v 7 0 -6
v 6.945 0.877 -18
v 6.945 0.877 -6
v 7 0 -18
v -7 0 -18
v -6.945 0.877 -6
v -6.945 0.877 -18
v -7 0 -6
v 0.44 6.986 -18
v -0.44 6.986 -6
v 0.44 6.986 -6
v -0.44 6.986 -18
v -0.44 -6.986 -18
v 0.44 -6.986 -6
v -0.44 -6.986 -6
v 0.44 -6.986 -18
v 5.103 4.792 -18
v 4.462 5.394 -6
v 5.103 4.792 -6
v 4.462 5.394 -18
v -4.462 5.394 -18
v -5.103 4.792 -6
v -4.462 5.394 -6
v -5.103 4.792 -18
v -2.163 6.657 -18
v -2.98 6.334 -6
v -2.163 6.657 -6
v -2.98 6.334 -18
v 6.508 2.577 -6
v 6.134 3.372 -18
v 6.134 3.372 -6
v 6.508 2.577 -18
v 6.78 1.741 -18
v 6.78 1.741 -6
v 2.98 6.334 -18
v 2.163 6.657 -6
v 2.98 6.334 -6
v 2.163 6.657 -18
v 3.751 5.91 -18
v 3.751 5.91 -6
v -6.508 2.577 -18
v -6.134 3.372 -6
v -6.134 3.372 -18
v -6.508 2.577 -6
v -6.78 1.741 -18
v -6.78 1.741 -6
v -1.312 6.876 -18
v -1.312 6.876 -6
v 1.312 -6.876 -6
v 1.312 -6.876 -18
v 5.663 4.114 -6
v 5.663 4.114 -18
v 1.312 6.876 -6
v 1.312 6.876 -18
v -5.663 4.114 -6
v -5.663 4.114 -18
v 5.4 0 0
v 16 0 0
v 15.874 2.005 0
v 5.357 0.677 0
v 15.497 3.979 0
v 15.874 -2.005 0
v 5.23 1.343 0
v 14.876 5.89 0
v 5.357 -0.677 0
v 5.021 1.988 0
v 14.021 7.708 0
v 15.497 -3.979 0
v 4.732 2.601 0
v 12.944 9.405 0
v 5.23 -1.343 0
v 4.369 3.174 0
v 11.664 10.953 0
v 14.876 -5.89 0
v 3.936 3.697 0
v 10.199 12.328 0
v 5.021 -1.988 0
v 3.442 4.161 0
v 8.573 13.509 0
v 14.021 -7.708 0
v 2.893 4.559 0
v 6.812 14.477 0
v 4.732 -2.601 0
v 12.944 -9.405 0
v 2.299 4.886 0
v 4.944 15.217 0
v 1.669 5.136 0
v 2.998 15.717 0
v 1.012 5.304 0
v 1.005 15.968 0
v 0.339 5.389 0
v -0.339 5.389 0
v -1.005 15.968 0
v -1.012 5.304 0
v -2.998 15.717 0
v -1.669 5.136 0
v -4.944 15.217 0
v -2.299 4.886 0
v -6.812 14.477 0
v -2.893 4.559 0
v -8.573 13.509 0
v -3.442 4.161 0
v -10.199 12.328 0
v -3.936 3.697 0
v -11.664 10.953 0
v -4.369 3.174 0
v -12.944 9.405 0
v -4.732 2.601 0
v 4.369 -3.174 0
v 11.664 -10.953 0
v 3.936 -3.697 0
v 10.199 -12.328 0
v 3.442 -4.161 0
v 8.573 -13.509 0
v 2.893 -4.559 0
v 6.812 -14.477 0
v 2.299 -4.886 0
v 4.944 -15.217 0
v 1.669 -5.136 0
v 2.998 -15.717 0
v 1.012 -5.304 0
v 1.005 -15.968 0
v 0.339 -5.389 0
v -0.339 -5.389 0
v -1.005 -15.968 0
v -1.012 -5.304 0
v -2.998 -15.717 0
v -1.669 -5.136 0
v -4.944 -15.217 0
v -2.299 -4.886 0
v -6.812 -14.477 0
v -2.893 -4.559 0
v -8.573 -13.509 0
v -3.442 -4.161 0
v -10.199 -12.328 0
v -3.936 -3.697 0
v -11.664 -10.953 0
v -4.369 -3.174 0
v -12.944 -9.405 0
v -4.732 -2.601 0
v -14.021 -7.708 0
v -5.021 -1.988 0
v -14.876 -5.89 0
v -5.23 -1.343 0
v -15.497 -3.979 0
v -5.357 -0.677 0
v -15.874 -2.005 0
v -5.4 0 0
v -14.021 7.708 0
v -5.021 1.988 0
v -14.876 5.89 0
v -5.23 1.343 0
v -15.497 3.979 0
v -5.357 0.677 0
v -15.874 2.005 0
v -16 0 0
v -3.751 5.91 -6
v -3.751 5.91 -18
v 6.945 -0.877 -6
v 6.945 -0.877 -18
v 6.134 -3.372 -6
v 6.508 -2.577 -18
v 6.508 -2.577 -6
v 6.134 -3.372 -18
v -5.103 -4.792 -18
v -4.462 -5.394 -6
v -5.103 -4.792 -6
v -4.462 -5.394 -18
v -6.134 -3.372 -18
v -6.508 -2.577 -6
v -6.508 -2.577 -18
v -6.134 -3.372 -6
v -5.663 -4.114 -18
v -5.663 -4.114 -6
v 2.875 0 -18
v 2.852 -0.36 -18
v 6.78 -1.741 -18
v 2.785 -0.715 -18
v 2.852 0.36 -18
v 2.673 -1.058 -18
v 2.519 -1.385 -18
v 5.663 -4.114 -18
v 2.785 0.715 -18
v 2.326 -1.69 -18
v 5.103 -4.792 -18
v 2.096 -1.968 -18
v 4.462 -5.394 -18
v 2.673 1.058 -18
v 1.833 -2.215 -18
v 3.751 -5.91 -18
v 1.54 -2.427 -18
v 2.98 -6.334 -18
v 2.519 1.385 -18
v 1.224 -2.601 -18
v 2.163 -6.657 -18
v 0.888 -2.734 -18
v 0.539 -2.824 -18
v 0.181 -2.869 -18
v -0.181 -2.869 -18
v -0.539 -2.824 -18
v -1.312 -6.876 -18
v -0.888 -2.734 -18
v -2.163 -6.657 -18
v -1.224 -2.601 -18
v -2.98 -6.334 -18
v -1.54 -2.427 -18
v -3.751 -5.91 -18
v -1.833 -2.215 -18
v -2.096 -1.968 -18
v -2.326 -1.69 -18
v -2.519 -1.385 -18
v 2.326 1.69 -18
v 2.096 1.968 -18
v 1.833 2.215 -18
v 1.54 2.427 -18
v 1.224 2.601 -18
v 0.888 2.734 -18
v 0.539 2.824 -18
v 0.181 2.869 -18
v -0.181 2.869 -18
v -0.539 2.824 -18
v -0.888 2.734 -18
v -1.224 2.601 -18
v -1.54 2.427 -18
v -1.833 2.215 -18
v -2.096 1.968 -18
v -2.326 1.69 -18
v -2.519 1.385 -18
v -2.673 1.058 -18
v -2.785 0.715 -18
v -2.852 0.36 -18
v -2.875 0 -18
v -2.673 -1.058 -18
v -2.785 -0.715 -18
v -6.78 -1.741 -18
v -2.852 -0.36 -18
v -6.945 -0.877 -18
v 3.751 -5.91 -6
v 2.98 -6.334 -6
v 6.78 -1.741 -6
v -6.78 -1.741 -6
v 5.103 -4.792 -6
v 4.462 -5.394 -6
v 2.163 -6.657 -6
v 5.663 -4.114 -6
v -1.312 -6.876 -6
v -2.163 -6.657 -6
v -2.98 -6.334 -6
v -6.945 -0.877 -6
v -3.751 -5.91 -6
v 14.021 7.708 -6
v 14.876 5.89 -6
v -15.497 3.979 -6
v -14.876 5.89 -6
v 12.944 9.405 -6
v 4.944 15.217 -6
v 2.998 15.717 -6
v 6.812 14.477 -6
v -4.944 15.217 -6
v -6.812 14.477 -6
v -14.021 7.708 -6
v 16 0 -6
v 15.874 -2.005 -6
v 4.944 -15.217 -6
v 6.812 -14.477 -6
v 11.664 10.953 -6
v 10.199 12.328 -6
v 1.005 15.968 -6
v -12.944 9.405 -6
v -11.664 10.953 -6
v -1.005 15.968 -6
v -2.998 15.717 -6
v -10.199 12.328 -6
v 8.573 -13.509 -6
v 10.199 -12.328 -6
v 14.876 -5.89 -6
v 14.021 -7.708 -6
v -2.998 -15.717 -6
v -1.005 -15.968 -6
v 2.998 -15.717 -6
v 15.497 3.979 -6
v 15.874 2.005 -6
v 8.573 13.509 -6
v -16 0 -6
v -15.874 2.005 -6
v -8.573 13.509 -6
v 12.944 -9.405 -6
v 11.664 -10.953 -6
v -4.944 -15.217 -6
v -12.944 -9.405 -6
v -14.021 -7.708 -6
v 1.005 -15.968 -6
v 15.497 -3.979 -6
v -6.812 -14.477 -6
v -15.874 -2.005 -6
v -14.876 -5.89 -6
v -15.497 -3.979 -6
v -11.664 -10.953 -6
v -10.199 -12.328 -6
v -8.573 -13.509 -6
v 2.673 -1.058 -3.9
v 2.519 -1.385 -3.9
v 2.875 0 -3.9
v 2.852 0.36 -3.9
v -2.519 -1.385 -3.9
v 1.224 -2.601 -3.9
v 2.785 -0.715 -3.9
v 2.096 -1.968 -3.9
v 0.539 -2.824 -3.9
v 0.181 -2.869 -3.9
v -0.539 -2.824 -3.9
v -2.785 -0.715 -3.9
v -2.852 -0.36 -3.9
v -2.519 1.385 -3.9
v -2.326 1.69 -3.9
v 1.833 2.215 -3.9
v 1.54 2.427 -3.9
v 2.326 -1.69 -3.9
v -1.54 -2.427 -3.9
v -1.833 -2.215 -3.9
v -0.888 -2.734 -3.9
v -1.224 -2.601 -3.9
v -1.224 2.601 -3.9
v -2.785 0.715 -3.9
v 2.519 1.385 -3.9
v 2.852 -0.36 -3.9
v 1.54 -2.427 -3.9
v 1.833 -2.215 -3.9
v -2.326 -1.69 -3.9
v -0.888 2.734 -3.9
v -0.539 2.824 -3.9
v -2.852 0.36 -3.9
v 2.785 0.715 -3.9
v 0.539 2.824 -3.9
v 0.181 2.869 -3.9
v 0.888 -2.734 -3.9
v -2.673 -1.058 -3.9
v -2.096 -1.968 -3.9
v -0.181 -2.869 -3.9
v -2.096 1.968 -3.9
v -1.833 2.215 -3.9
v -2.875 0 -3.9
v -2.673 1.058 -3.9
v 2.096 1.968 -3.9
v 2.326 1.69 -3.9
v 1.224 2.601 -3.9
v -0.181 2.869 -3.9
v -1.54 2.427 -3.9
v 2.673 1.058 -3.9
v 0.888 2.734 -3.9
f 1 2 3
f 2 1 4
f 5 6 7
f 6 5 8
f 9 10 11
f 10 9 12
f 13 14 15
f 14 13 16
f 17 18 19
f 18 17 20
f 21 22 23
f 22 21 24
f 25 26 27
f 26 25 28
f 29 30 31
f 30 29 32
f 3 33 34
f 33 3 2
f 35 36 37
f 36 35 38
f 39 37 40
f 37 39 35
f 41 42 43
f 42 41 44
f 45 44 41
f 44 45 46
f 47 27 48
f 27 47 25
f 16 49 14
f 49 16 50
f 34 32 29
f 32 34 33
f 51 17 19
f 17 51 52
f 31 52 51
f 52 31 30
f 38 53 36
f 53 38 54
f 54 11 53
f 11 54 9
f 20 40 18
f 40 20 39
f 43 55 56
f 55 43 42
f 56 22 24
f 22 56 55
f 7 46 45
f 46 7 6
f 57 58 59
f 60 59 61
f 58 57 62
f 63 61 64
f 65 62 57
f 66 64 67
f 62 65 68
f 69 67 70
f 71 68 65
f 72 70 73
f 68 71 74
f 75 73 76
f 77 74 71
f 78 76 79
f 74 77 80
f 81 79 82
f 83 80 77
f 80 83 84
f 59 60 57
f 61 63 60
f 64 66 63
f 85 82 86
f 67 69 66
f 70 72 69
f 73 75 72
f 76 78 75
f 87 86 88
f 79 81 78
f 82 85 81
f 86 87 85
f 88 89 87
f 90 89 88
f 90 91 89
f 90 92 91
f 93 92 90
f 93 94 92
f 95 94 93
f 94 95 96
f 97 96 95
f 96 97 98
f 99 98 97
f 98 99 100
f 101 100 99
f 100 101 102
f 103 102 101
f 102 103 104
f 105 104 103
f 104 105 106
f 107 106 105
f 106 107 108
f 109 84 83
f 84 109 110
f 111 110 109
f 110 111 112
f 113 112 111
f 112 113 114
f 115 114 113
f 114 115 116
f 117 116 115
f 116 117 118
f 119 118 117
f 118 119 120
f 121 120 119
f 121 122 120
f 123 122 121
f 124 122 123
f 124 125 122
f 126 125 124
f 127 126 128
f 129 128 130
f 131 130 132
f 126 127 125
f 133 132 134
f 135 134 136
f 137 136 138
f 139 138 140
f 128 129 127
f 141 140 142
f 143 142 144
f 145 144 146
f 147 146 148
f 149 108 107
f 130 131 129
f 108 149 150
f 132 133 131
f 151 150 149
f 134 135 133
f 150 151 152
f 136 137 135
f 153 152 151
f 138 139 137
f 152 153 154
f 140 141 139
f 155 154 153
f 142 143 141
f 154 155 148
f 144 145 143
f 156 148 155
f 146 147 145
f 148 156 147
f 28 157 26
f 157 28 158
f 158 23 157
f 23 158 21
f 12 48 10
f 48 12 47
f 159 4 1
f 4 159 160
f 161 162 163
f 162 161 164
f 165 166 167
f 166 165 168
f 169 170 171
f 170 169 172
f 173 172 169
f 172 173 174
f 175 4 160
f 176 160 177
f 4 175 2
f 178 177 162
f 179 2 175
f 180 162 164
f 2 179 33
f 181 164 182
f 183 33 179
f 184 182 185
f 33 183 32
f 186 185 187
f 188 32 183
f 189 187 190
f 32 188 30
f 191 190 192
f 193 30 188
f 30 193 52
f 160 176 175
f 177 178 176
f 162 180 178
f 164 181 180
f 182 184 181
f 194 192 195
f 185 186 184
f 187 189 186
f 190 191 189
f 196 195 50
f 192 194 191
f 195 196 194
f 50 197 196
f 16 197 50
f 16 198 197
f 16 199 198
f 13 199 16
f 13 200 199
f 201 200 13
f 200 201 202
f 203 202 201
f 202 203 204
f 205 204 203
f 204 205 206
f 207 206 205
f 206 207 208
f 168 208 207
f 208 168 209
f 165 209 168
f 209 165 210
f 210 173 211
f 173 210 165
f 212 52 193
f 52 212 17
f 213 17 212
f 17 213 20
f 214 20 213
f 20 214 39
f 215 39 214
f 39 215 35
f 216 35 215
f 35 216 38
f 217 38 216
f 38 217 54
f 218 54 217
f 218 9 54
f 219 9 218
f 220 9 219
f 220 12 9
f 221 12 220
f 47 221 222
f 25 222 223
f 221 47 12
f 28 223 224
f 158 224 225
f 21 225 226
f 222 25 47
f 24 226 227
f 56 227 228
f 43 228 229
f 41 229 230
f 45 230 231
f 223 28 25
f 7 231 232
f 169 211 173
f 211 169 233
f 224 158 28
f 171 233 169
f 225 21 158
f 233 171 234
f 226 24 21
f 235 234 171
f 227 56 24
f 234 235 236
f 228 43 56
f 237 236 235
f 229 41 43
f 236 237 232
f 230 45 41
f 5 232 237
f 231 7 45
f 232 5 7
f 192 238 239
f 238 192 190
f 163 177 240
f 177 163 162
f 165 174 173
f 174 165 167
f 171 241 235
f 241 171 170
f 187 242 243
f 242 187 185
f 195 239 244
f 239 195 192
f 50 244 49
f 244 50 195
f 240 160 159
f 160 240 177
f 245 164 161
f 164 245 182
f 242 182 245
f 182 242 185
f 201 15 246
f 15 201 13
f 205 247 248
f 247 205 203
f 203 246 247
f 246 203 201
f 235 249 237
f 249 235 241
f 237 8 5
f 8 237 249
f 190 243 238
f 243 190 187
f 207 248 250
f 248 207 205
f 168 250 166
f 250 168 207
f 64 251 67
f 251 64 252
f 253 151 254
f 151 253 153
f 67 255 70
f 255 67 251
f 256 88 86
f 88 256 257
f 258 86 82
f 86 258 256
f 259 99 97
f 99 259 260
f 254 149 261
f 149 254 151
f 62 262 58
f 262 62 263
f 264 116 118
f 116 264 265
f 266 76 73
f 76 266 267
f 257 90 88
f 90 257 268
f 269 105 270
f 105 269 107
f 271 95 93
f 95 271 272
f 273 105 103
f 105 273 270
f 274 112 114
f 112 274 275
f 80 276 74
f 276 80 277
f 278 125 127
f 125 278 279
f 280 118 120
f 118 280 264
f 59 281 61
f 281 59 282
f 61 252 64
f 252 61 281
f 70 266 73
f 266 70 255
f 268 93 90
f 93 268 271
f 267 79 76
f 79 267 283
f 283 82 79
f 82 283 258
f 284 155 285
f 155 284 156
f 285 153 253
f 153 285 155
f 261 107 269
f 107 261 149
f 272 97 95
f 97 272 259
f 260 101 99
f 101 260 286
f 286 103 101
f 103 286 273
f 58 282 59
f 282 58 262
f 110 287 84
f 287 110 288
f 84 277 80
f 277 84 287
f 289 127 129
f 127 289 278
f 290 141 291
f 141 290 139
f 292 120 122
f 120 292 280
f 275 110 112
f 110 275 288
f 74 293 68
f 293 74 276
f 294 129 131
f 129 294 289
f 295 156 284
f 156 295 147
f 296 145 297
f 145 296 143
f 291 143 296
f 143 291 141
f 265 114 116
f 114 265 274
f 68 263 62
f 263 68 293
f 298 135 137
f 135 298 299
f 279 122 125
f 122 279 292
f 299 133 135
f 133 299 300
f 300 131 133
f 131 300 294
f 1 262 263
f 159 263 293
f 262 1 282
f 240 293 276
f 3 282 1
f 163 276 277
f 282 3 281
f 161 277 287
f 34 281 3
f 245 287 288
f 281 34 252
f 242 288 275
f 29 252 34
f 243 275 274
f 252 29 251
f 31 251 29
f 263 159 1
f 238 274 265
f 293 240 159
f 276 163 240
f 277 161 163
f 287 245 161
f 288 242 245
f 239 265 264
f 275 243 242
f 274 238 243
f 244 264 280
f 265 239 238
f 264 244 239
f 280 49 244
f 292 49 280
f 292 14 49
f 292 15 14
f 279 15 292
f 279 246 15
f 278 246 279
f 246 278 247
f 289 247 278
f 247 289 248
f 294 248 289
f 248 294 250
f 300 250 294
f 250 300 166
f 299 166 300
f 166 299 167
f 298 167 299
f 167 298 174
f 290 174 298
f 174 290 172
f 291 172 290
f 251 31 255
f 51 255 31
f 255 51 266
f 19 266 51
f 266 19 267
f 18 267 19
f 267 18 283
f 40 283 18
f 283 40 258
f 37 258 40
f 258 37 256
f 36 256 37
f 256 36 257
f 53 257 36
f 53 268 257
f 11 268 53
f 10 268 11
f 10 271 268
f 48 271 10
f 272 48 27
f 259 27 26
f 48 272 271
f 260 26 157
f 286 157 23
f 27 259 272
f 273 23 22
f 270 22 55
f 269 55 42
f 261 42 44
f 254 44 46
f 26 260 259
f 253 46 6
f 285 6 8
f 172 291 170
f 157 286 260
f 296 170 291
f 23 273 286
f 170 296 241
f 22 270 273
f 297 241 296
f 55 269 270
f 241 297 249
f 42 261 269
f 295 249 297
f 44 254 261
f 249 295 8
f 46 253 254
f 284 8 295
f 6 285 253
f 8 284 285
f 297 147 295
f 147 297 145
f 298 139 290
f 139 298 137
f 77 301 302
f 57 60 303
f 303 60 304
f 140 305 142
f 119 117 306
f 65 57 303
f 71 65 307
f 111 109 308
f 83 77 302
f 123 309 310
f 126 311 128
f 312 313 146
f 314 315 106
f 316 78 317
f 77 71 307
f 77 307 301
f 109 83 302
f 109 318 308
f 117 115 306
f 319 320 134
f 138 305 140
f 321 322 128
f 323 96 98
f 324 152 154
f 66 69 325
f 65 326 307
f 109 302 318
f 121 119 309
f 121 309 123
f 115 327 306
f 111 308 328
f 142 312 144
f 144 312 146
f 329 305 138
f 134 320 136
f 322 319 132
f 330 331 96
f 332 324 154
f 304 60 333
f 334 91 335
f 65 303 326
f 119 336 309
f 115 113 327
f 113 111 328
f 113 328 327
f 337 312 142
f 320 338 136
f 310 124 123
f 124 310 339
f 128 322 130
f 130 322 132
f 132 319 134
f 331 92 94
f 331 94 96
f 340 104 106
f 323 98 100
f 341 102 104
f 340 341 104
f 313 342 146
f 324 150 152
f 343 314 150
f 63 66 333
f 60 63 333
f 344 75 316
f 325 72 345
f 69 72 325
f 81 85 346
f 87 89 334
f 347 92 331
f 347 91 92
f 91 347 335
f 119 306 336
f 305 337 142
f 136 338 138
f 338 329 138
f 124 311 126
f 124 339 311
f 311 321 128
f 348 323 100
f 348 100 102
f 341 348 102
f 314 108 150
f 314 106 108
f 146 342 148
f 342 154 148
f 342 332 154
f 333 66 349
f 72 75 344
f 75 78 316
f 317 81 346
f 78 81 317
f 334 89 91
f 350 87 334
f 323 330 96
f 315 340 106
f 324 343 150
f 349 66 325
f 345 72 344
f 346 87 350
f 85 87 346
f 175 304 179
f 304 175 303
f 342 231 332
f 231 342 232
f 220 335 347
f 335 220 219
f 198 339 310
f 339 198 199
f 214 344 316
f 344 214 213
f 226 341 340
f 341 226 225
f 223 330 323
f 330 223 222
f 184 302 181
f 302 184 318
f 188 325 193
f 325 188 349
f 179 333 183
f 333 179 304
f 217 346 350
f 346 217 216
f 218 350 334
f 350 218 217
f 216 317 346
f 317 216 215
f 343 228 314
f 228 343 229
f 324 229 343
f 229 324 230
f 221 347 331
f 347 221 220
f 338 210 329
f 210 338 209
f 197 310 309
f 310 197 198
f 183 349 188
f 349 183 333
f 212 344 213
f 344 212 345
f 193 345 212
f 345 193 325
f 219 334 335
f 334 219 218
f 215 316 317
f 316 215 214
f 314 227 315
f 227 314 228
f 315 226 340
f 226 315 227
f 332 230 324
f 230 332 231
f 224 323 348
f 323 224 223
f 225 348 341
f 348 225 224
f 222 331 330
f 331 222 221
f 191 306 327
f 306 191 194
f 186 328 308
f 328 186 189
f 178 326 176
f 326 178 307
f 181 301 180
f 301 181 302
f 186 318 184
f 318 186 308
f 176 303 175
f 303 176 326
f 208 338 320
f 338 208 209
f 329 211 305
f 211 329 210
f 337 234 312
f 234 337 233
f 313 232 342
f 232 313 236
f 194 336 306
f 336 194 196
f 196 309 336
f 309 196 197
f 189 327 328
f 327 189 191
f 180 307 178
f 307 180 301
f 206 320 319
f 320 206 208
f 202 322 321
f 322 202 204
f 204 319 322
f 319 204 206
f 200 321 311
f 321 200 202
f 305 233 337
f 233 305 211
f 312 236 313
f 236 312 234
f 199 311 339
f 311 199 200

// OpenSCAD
$fn = 50;


difference() {
	union() {
		translate(v = [0, 0, -18.0000000000]) {
			cylinder(h = 18, r = 7.0000000000);
		}
		translate(v = [0, 0, -6.0000000000]) {
			cylinder(h = 6, r = 16.0000000000);
		}
	}
	union() {
		translate(v = [0, 0, 0]) {
			rotate(a = [0, 0, 0]) {
				difference() {
					union() {
						#translate(v = [0, 0, -18.0000000000]) {
							cylinder(h = 18, r = 2.6000000000);
						}
						#translate(v = [0, 0, -3.9000000000]) {
							cylinder(h = 3.9000000000, r = 7.0000000000, r1 = 2.8750000000, r2 = 5.4000000000);
						}
						#translate(v = [0, 0, -18.0000000000]) {
							cylinder(h = 18, r = 2.8750000000);
						}
						#translate(v = [0, 0, -18.0000000000]) {
							cylinder(h = 18, r = 2.6000000000);
						}
					}
					union();
				}
			}
		}
	}
}
